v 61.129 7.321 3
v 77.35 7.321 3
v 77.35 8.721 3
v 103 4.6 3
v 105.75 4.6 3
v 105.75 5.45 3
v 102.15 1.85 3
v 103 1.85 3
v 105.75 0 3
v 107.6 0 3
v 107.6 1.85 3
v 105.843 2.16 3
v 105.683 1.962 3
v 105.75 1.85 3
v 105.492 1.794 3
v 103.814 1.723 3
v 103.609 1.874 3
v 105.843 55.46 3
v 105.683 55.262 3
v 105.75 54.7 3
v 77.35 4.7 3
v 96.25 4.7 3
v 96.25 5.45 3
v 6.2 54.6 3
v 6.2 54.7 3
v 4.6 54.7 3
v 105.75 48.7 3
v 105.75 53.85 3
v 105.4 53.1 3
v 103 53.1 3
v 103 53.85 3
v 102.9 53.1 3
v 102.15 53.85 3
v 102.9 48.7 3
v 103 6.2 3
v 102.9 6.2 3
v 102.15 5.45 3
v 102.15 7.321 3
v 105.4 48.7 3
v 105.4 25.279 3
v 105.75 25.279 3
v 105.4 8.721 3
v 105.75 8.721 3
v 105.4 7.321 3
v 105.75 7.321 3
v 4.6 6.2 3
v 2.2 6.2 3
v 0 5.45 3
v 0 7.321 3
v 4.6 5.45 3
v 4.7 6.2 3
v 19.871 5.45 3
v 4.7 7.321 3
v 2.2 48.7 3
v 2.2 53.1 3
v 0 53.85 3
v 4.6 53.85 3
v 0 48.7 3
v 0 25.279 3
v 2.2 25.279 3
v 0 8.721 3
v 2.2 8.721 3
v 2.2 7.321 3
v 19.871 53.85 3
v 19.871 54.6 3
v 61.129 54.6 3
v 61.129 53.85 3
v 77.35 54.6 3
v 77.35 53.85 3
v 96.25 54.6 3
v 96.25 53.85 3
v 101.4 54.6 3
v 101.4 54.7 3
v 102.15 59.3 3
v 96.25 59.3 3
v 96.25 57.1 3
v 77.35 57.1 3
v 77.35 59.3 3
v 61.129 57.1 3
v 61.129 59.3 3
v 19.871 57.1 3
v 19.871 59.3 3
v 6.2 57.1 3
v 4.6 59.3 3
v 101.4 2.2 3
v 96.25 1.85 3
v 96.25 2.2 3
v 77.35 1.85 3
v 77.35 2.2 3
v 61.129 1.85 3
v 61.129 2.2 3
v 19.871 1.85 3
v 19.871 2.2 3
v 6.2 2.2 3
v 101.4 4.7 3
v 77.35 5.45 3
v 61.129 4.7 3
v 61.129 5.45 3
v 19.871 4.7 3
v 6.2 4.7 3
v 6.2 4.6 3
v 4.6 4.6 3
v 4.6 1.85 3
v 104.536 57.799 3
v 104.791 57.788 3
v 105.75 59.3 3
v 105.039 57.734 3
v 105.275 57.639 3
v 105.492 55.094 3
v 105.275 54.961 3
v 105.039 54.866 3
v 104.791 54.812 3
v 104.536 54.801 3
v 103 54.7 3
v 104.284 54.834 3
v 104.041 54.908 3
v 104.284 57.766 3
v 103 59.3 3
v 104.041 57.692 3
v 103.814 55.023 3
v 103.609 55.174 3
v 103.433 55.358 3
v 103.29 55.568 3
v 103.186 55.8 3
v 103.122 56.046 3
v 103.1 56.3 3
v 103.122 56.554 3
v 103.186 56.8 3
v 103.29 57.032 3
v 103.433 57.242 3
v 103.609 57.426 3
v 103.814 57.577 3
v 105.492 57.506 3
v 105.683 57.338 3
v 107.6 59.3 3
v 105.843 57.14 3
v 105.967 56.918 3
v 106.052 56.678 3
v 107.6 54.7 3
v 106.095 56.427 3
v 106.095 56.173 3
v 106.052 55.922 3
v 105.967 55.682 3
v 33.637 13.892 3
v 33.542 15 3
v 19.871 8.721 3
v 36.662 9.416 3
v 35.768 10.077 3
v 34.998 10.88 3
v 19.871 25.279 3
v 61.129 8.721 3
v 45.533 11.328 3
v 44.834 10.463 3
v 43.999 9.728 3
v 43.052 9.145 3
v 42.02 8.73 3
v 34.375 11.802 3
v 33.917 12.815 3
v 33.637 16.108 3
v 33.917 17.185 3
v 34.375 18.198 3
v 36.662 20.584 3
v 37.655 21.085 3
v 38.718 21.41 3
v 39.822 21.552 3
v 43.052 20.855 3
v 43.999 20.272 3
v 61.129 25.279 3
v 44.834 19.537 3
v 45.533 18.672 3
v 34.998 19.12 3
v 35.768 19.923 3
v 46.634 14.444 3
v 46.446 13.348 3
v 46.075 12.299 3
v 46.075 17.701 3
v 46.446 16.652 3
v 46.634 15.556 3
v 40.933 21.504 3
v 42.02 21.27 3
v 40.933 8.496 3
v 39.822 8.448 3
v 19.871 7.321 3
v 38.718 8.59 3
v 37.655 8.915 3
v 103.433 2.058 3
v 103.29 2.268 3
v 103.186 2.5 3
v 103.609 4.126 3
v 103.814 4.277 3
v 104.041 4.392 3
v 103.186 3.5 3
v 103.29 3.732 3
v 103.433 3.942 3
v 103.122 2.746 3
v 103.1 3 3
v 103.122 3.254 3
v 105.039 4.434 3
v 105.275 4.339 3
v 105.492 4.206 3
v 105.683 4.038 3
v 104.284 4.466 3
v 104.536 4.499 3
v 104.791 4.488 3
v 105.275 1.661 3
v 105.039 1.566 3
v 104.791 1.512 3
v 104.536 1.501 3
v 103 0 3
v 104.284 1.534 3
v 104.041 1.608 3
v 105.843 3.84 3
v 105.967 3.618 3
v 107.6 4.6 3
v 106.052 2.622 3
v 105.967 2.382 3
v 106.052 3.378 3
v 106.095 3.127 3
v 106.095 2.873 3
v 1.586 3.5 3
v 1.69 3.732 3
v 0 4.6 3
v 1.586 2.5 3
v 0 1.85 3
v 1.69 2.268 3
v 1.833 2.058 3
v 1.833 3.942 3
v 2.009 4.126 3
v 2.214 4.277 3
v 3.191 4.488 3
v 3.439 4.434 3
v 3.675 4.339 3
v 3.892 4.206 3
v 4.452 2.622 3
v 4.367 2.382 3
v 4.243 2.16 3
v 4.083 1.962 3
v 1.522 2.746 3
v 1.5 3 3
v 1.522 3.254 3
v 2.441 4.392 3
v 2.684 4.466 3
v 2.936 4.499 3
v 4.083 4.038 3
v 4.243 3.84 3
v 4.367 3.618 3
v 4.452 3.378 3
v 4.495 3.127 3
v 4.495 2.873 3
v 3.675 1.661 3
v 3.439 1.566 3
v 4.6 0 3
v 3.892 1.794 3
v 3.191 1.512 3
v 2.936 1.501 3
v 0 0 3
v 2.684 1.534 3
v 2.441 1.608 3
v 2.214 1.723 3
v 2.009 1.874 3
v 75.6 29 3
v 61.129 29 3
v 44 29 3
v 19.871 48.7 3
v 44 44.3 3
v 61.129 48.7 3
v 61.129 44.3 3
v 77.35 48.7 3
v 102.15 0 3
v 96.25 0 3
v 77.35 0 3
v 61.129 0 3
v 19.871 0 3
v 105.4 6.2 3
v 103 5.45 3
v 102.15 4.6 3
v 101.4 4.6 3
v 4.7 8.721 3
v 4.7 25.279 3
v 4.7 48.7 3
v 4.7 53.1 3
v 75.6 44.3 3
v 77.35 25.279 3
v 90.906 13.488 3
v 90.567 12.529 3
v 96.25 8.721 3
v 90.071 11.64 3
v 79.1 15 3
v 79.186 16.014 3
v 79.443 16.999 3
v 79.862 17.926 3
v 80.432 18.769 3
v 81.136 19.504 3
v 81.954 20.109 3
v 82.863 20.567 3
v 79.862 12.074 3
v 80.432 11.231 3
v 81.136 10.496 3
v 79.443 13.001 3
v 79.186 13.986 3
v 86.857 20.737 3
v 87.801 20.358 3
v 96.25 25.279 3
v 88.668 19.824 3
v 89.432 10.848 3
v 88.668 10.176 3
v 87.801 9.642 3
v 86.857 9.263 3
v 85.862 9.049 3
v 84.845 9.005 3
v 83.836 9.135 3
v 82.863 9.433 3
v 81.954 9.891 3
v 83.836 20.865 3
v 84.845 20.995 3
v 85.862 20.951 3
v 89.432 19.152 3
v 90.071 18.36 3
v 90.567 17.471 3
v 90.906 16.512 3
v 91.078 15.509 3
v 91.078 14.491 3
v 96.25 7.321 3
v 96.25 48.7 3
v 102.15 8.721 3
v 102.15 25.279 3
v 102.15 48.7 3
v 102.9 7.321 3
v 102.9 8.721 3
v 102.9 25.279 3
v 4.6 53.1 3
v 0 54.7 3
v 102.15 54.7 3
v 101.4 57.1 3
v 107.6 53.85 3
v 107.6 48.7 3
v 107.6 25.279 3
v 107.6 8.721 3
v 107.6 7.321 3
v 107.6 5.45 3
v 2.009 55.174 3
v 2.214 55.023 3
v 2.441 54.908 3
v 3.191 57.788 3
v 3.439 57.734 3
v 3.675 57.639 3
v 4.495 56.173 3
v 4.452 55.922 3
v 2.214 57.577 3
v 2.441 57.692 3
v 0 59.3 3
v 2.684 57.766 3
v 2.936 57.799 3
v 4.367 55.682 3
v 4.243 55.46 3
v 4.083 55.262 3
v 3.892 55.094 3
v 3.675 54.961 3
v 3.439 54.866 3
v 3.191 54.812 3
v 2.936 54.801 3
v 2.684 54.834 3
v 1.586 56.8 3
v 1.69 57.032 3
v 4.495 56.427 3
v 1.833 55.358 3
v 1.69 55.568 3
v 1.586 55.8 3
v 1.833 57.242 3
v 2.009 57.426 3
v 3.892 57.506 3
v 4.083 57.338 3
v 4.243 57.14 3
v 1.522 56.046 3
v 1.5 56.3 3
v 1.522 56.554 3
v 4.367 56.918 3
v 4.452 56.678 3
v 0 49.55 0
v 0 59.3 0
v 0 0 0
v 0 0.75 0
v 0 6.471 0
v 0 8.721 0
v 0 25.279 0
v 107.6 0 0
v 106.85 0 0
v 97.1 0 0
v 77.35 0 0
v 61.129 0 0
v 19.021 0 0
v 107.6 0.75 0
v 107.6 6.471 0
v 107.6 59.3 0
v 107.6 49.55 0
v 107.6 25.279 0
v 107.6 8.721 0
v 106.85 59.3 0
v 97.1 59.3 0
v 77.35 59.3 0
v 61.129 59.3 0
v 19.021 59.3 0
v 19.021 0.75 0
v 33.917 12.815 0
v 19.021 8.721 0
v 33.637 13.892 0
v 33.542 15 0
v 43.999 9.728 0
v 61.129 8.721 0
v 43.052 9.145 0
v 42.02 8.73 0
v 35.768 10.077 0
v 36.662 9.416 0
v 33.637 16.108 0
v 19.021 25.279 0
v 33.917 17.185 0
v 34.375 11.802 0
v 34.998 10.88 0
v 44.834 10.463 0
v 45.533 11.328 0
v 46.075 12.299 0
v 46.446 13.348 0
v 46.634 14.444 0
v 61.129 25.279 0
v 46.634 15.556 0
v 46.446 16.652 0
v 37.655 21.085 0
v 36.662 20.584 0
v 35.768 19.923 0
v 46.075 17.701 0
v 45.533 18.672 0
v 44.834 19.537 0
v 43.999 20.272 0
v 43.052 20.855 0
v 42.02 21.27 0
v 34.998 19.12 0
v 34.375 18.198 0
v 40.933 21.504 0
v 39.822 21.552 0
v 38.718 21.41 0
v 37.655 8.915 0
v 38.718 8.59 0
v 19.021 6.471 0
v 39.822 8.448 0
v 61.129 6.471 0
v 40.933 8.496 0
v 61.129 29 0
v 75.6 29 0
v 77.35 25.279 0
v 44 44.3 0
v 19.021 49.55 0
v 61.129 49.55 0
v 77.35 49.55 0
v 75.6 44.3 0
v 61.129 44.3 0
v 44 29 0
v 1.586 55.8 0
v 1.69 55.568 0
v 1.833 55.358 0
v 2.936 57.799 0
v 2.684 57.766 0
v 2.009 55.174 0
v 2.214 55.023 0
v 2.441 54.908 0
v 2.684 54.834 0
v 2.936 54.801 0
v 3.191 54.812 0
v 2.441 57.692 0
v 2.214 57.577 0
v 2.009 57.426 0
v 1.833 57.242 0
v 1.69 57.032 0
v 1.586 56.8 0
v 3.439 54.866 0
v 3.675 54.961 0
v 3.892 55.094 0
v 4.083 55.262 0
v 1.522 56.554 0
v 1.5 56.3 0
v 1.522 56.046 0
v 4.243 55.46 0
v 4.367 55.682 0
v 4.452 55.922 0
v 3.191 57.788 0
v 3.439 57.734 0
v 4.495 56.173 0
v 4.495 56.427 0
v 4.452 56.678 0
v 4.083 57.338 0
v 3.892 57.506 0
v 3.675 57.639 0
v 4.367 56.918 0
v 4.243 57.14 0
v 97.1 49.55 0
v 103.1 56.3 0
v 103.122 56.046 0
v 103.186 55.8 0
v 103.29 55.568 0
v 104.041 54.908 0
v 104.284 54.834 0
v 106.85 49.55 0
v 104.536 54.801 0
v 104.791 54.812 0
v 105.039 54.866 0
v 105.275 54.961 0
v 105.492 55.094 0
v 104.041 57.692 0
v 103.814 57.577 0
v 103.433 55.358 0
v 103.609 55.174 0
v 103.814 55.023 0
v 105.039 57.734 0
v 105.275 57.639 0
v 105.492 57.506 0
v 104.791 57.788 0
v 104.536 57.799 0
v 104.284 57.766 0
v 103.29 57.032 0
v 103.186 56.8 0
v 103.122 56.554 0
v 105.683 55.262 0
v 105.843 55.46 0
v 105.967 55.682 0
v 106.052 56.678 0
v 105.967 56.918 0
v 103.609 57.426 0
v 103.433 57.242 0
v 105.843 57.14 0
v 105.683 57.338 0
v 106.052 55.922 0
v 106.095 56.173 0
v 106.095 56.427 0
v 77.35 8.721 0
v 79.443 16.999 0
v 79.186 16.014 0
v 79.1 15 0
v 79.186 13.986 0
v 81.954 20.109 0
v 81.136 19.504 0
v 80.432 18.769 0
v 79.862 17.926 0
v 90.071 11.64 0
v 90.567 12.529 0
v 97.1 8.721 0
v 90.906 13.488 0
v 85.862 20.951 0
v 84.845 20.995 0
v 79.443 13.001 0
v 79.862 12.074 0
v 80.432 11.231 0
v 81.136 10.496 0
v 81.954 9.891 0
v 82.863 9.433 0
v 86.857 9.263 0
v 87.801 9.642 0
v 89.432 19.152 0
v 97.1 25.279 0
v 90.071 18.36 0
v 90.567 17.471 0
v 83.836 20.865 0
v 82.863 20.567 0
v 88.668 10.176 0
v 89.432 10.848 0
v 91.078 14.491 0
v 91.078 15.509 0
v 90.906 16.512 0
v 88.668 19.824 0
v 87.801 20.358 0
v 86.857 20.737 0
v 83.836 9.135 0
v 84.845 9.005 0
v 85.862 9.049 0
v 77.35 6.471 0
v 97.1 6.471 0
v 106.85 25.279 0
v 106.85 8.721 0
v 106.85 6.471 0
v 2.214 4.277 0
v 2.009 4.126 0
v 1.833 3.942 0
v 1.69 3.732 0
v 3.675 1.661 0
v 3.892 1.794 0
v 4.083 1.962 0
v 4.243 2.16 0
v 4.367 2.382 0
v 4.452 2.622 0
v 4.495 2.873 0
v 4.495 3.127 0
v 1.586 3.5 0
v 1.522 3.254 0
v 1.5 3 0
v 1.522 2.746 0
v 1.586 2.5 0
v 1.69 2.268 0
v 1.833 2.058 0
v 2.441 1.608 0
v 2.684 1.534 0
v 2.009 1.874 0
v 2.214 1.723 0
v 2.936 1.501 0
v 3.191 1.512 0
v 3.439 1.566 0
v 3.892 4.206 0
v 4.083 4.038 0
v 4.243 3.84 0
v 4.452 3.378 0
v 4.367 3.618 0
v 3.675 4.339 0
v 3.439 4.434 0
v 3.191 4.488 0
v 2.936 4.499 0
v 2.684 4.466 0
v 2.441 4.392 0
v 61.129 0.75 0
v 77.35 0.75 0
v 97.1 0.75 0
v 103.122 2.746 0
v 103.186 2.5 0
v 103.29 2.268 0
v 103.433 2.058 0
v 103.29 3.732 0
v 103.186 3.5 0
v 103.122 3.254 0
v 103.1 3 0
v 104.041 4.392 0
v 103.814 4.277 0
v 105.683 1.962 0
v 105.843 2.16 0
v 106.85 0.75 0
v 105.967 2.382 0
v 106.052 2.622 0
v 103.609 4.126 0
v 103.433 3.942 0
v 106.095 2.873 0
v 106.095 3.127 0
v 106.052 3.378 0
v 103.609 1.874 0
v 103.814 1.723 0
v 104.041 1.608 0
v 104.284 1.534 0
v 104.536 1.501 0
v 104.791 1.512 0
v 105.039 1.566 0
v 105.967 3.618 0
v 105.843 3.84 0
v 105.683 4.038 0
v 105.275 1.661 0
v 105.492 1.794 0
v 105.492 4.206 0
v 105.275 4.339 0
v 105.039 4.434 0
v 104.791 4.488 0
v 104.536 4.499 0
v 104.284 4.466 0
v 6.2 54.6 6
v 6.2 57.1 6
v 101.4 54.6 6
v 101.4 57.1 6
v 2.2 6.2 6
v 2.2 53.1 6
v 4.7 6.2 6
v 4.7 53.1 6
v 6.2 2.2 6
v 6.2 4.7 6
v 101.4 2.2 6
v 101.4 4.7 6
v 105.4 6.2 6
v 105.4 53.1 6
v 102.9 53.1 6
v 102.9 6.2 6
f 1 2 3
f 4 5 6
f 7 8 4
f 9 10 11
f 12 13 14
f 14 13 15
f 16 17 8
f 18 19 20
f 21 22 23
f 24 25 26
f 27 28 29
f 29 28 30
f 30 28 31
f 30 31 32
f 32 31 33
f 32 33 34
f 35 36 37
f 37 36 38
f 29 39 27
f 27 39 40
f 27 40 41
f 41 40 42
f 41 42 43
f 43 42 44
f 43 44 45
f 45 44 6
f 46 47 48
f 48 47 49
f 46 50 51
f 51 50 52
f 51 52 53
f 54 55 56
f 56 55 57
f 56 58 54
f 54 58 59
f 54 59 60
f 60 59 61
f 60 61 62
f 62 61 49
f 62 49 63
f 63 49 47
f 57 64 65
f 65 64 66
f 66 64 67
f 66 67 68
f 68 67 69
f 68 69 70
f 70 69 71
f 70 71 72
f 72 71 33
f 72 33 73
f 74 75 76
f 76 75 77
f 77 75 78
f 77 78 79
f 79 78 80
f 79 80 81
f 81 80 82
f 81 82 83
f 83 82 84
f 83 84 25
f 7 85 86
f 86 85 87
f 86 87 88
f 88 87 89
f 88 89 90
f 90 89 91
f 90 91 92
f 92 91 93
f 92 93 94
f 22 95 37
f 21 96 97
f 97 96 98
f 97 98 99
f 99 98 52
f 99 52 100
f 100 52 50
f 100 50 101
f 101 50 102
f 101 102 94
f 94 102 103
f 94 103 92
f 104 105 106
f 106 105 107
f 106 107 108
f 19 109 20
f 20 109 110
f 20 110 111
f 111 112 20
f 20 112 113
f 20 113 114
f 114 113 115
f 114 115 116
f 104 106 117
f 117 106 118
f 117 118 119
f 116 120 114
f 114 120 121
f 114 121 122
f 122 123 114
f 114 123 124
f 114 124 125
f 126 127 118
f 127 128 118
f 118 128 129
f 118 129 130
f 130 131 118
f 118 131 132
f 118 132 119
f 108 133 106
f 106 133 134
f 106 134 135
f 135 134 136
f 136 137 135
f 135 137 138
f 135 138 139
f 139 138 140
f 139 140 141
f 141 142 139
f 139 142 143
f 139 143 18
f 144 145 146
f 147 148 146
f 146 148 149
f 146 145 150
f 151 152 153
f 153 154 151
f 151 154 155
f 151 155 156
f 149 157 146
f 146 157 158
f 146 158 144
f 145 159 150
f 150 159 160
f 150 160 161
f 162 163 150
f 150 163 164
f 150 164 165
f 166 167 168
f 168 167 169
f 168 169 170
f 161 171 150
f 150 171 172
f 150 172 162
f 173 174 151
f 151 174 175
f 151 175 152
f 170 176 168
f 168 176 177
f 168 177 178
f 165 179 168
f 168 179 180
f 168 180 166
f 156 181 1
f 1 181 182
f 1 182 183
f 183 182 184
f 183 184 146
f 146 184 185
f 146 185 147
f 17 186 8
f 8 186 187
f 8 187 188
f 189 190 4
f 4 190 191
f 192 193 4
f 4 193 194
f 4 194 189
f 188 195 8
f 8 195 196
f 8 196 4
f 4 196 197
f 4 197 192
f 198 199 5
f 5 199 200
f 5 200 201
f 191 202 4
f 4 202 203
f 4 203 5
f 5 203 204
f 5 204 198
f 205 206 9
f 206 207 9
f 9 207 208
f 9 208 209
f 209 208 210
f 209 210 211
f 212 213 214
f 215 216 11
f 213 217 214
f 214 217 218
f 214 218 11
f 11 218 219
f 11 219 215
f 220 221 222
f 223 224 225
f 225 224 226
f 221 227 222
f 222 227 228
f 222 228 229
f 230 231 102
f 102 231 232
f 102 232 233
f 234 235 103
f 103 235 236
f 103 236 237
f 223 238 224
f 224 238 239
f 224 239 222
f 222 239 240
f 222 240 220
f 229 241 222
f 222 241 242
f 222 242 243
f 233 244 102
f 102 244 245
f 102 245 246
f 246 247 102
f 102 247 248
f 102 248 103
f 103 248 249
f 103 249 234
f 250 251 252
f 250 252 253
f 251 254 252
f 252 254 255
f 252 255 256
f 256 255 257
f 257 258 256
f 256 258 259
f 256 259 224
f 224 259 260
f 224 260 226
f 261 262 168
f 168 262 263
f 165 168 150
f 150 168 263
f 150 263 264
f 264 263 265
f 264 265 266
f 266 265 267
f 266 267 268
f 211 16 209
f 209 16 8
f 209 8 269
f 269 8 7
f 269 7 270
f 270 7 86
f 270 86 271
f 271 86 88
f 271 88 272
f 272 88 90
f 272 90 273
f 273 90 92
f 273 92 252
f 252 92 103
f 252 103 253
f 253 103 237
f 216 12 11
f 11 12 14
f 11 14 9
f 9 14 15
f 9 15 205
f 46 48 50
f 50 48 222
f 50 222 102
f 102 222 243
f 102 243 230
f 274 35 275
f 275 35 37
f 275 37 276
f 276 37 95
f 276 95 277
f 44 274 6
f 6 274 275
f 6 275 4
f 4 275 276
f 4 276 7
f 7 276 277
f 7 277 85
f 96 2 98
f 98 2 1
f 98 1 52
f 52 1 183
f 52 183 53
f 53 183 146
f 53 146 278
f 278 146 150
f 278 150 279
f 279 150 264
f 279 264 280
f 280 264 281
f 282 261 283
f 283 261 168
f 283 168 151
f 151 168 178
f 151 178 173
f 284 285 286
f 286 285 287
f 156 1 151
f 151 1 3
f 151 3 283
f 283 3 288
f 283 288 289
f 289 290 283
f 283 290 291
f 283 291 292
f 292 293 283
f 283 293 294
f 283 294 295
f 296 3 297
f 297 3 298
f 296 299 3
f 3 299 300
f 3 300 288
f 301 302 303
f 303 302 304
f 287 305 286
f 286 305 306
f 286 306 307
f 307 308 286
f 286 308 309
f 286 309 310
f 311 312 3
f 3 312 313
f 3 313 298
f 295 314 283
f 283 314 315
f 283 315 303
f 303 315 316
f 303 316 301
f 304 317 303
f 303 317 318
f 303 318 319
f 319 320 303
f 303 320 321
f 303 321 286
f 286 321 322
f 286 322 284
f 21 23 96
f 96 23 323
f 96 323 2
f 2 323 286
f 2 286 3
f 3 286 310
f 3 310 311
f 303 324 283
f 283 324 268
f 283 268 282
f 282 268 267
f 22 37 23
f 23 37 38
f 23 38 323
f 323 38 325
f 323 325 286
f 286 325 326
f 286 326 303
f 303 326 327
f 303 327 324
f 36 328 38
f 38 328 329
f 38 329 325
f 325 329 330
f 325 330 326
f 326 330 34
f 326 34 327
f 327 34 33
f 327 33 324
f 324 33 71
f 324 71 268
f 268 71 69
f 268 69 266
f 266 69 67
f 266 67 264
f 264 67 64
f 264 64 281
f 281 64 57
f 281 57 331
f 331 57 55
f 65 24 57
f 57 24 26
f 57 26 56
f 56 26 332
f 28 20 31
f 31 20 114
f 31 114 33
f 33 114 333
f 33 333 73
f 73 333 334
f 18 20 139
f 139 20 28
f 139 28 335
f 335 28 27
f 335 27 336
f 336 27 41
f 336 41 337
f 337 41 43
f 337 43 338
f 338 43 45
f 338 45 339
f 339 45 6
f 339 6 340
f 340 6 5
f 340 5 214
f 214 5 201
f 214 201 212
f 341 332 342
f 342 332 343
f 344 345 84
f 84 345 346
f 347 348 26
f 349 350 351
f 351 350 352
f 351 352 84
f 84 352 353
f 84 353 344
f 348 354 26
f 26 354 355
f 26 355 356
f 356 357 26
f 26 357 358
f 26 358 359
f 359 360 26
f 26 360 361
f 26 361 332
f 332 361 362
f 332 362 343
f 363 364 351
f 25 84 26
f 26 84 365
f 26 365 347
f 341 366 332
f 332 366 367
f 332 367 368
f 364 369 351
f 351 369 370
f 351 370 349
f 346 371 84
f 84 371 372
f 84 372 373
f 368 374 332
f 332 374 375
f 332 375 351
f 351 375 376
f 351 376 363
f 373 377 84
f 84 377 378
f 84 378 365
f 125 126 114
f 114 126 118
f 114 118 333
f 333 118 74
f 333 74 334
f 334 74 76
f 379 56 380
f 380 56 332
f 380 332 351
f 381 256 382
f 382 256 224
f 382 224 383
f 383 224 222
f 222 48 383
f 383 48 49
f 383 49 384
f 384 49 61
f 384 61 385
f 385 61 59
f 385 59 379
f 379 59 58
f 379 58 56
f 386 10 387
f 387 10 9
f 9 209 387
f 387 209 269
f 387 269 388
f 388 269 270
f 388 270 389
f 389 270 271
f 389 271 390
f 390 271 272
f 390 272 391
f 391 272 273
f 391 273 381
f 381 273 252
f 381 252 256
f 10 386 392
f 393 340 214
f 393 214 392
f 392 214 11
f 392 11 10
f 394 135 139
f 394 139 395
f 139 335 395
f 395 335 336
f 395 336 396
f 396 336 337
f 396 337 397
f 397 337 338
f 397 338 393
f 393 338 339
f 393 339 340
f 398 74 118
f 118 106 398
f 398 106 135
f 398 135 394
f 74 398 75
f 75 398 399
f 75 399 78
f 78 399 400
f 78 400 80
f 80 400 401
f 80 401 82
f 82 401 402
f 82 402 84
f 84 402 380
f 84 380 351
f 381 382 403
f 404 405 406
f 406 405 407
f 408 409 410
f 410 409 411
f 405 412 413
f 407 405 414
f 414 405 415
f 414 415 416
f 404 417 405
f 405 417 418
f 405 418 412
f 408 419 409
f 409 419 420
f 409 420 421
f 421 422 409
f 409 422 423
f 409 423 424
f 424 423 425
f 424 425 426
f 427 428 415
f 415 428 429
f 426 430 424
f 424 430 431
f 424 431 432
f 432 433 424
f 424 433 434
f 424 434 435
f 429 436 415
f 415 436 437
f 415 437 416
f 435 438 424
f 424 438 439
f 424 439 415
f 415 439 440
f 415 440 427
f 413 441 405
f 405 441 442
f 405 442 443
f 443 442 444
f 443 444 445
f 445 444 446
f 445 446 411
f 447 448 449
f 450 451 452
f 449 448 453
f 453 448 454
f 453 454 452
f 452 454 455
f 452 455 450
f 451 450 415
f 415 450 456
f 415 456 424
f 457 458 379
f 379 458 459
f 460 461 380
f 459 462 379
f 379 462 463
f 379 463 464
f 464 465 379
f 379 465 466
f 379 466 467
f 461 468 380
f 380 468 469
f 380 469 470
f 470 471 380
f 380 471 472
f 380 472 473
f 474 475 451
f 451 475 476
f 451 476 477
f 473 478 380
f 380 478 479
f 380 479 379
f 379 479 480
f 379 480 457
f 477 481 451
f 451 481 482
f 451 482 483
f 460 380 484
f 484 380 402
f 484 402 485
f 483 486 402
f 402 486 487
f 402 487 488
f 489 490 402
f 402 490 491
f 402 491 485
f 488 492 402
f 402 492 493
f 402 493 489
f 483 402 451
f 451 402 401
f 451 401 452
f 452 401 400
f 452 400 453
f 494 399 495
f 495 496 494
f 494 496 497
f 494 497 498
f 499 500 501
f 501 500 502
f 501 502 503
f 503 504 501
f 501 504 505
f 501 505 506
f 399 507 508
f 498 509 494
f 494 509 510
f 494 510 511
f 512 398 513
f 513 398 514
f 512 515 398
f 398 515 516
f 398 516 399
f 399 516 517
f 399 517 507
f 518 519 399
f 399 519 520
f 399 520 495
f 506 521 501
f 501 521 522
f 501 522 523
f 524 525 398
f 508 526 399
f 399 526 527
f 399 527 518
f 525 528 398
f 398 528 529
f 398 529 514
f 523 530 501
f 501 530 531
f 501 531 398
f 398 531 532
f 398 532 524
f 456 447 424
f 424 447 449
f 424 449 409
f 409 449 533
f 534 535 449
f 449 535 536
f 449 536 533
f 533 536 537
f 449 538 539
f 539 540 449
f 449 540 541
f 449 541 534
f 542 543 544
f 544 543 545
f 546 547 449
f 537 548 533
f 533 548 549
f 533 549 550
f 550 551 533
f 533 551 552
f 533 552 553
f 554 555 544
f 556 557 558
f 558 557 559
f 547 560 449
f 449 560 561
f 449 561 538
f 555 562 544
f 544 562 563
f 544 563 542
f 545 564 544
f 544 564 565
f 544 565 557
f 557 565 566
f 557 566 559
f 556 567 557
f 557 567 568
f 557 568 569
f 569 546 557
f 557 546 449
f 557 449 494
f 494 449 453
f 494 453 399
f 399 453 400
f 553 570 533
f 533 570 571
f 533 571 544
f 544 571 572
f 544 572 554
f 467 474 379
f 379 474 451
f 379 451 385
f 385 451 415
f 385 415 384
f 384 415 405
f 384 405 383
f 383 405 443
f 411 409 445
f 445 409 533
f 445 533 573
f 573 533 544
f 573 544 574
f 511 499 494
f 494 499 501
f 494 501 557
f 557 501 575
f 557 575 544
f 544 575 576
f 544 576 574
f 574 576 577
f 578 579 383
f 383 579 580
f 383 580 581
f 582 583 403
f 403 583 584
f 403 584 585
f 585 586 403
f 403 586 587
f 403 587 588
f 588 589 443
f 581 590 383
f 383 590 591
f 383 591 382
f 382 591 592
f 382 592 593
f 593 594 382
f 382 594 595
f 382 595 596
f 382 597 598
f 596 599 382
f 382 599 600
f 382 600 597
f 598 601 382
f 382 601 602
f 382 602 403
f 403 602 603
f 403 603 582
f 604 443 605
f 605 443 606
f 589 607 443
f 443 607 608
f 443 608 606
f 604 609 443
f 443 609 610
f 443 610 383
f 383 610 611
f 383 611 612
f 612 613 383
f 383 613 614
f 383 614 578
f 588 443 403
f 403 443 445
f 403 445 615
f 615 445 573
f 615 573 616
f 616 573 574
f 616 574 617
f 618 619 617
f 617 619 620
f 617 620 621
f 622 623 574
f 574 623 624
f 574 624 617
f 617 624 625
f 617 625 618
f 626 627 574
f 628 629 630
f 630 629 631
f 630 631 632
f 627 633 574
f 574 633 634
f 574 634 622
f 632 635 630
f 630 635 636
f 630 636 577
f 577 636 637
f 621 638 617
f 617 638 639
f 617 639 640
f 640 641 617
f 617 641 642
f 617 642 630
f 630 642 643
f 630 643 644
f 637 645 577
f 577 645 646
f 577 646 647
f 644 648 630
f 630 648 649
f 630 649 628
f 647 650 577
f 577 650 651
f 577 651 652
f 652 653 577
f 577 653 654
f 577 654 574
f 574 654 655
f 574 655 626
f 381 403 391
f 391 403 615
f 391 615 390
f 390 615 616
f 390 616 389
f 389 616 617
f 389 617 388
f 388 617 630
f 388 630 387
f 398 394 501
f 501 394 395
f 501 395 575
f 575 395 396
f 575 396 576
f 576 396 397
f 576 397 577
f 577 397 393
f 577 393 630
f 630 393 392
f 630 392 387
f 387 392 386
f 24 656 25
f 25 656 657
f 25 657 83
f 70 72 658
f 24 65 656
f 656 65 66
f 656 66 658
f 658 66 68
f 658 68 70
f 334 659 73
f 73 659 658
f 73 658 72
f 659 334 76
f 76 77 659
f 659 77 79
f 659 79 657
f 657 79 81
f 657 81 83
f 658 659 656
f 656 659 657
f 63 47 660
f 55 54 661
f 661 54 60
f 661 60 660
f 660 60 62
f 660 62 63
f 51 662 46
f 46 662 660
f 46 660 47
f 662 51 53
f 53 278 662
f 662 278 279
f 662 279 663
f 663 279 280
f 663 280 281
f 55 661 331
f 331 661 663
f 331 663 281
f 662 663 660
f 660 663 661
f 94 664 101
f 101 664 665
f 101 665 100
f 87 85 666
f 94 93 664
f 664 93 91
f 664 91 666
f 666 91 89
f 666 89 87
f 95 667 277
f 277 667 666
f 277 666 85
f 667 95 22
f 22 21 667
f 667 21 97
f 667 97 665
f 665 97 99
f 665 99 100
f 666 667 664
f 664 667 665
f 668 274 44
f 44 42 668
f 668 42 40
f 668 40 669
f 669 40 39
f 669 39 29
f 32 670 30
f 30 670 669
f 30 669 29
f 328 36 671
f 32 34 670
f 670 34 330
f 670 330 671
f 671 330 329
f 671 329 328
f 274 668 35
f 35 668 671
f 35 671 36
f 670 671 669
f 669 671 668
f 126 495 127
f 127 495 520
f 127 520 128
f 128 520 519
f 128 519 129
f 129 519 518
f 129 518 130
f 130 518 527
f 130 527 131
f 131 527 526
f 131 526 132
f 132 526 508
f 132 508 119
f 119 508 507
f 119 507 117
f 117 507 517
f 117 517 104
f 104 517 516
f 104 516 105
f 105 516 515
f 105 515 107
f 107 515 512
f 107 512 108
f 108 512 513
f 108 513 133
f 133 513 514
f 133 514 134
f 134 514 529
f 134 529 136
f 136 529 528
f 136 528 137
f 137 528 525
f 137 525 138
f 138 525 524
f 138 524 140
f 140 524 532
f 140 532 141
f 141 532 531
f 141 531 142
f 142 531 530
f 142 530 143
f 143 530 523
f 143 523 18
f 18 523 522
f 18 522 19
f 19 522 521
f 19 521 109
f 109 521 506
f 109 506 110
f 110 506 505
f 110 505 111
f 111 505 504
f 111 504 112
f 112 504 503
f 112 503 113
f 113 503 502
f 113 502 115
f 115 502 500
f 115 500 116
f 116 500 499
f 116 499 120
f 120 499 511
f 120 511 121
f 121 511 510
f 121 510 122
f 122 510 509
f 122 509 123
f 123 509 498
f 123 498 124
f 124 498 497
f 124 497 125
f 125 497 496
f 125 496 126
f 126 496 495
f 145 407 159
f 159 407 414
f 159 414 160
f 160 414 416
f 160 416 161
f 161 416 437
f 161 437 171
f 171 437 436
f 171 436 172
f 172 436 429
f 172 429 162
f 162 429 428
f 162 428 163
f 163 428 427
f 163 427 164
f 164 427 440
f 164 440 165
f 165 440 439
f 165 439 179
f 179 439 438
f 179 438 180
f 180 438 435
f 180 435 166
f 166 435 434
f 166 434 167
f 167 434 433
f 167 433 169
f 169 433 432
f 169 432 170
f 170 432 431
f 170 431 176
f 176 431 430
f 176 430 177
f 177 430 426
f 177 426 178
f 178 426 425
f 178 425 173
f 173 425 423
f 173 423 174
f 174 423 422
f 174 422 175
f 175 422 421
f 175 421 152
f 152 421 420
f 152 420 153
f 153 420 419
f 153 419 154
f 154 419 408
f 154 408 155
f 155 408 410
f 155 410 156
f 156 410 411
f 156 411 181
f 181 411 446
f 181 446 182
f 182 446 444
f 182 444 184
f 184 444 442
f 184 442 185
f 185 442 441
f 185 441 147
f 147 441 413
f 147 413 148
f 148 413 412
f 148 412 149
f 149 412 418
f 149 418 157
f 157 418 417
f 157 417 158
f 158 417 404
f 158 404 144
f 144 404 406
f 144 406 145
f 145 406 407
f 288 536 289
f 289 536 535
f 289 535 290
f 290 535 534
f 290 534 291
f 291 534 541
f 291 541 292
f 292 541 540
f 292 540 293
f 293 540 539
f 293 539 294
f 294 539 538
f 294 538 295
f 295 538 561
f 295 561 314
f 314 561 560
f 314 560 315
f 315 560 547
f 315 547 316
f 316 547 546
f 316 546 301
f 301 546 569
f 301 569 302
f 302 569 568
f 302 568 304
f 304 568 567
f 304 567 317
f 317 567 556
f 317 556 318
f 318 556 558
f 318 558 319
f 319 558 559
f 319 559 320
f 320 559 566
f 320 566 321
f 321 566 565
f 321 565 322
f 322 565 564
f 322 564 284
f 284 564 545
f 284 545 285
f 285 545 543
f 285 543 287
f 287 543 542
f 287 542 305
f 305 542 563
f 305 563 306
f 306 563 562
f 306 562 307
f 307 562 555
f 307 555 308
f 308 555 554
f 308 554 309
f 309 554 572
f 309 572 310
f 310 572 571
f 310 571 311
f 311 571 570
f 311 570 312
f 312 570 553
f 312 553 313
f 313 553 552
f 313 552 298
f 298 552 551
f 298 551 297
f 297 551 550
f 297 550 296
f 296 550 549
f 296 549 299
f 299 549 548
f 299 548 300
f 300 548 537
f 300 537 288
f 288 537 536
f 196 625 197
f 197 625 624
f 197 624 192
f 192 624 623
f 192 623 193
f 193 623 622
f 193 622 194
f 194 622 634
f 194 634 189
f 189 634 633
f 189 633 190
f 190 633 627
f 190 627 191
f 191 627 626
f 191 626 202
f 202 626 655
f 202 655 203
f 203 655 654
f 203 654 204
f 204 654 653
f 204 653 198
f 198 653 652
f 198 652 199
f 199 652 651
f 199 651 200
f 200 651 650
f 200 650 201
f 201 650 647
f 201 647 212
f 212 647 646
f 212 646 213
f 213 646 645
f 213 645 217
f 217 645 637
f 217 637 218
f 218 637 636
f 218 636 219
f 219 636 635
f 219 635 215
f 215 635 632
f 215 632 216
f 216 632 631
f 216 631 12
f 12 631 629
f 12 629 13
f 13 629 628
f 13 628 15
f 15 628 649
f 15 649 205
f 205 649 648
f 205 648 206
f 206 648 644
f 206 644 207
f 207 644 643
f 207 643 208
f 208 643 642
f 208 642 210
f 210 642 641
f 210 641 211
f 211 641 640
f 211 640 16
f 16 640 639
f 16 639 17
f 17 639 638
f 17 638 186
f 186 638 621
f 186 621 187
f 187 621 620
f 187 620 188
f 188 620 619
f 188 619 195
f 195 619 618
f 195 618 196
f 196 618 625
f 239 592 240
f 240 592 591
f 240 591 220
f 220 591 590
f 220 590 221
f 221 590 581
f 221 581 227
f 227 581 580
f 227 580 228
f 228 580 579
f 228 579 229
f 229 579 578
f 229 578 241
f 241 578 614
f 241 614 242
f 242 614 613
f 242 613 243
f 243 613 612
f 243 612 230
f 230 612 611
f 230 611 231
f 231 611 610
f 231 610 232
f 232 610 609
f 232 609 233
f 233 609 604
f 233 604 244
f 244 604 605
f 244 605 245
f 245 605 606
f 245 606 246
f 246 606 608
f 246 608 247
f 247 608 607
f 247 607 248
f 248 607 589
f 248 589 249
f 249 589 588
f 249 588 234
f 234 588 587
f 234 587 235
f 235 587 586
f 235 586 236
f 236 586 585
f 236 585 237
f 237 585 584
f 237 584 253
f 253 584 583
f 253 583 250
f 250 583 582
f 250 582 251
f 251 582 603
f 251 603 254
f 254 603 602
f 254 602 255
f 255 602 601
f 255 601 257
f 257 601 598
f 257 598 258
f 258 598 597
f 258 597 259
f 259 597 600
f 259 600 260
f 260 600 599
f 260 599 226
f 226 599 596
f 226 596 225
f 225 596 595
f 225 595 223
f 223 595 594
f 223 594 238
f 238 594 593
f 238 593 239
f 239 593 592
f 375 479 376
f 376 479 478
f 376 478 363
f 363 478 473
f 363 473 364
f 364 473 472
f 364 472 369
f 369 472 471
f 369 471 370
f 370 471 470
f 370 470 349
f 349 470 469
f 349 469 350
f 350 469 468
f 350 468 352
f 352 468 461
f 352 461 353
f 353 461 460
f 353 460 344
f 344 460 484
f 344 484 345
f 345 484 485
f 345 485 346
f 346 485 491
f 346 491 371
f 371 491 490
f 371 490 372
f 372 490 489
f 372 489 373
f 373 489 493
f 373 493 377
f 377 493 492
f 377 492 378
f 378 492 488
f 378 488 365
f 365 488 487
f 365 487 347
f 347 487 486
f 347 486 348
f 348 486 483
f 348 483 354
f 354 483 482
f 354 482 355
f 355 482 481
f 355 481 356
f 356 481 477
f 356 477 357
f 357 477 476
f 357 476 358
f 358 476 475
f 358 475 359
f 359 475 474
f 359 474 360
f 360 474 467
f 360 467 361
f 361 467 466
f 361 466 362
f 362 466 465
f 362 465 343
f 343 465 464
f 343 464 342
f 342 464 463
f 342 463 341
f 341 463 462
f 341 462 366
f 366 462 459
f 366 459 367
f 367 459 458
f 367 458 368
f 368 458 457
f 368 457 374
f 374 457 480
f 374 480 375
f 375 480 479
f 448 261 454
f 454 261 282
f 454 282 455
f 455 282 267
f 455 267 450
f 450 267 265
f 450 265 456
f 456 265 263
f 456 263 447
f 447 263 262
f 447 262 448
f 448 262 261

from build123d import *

# Parameters (mm, degrees)
SKETCH1_W           = 107.6
SKETCH1_H           = 59.3
BOSS_EXTRUDE1_DEPTH = 3
SKETCH2_W           = 95.2
SKETCH2_H           = 2.5
SKETCH2_W_2         = 2.5
SKETCH2_H_2         = 46.9
BOSS_EXTRUDE2_DEPTH = 3
SKETCH3_R           = 1.5
SKETCH3_R_2         = 6
SKETCH3_R_3         = 6.557552613
SKETCH3_W           = 31.6
SKETCH3_H           = 15.3
CUT_EXTRUDE1_DEPTH  = 5


with BuildPart() as part:
    # Sketch1 → Boss-Extrude1 (new body)
    with BuildSketch(Plane.XY):
        with Locations((53.8, 29.65)):
            Rectangle(SKETCH1_W, SKETCH1_H)
    extrude(amount=BOSS_EXTRUDE1_DEPTH)

    # Sketch2 → Boss-Extrude2 (add)
    with BuildSketch(Plane.XY.offset(3)):
        with Locations((53.8, 55.85)):
            Rectangle(SKETCH2_W, SKETCH2_H)
        with Locations((3.45, 29.65)):
            Rectangle(SKETCH2_W_2, SKETCH2_H_2)
        with Locations((53.8, 3.45)):
            Rectangle(SKETCH2_W, SKETCH2_H)
        with Locations((104.15, 29.65)):
            Rectangle(SKETCH2_W_2, SKETCH2_H_2)
    extrude(amount=BOSS_EXTRUDE2_DEPTH)

    # Sketch3 → Cut-Extrude1 (cut)
    with BuildSketch(Plane(origin=(0, 0, 0), x_dir=(-1, 0, 0), z_dir=(0, 0, -1))):
        with Locations((-104.6, 56.3)):
            Circle(SKETCH3_R)
        with Locations((-3, 56.3)):
            Circle(SKETCH3_R)
        with Locations((-3, 3)):
            Circle(SKETCH3_R)
        with Locations((-104.6, 3)):
            Circle(SKETCH3_R)
        with Locations((-85.1, 15)):
            Circle(SKETCH3_R_2)
        with Locations((-40.1, 15)):
            Circle(SKETCH3_R_3)
        with Locations((-59.8, 36.65)):
            Rectangle(SKETCH3_W, SKETCH3_H)
    extrude(amount=-CUT_EXTRUDE1_DEPTH, mode=Mode.SUBTRACT)


solid = part.part
